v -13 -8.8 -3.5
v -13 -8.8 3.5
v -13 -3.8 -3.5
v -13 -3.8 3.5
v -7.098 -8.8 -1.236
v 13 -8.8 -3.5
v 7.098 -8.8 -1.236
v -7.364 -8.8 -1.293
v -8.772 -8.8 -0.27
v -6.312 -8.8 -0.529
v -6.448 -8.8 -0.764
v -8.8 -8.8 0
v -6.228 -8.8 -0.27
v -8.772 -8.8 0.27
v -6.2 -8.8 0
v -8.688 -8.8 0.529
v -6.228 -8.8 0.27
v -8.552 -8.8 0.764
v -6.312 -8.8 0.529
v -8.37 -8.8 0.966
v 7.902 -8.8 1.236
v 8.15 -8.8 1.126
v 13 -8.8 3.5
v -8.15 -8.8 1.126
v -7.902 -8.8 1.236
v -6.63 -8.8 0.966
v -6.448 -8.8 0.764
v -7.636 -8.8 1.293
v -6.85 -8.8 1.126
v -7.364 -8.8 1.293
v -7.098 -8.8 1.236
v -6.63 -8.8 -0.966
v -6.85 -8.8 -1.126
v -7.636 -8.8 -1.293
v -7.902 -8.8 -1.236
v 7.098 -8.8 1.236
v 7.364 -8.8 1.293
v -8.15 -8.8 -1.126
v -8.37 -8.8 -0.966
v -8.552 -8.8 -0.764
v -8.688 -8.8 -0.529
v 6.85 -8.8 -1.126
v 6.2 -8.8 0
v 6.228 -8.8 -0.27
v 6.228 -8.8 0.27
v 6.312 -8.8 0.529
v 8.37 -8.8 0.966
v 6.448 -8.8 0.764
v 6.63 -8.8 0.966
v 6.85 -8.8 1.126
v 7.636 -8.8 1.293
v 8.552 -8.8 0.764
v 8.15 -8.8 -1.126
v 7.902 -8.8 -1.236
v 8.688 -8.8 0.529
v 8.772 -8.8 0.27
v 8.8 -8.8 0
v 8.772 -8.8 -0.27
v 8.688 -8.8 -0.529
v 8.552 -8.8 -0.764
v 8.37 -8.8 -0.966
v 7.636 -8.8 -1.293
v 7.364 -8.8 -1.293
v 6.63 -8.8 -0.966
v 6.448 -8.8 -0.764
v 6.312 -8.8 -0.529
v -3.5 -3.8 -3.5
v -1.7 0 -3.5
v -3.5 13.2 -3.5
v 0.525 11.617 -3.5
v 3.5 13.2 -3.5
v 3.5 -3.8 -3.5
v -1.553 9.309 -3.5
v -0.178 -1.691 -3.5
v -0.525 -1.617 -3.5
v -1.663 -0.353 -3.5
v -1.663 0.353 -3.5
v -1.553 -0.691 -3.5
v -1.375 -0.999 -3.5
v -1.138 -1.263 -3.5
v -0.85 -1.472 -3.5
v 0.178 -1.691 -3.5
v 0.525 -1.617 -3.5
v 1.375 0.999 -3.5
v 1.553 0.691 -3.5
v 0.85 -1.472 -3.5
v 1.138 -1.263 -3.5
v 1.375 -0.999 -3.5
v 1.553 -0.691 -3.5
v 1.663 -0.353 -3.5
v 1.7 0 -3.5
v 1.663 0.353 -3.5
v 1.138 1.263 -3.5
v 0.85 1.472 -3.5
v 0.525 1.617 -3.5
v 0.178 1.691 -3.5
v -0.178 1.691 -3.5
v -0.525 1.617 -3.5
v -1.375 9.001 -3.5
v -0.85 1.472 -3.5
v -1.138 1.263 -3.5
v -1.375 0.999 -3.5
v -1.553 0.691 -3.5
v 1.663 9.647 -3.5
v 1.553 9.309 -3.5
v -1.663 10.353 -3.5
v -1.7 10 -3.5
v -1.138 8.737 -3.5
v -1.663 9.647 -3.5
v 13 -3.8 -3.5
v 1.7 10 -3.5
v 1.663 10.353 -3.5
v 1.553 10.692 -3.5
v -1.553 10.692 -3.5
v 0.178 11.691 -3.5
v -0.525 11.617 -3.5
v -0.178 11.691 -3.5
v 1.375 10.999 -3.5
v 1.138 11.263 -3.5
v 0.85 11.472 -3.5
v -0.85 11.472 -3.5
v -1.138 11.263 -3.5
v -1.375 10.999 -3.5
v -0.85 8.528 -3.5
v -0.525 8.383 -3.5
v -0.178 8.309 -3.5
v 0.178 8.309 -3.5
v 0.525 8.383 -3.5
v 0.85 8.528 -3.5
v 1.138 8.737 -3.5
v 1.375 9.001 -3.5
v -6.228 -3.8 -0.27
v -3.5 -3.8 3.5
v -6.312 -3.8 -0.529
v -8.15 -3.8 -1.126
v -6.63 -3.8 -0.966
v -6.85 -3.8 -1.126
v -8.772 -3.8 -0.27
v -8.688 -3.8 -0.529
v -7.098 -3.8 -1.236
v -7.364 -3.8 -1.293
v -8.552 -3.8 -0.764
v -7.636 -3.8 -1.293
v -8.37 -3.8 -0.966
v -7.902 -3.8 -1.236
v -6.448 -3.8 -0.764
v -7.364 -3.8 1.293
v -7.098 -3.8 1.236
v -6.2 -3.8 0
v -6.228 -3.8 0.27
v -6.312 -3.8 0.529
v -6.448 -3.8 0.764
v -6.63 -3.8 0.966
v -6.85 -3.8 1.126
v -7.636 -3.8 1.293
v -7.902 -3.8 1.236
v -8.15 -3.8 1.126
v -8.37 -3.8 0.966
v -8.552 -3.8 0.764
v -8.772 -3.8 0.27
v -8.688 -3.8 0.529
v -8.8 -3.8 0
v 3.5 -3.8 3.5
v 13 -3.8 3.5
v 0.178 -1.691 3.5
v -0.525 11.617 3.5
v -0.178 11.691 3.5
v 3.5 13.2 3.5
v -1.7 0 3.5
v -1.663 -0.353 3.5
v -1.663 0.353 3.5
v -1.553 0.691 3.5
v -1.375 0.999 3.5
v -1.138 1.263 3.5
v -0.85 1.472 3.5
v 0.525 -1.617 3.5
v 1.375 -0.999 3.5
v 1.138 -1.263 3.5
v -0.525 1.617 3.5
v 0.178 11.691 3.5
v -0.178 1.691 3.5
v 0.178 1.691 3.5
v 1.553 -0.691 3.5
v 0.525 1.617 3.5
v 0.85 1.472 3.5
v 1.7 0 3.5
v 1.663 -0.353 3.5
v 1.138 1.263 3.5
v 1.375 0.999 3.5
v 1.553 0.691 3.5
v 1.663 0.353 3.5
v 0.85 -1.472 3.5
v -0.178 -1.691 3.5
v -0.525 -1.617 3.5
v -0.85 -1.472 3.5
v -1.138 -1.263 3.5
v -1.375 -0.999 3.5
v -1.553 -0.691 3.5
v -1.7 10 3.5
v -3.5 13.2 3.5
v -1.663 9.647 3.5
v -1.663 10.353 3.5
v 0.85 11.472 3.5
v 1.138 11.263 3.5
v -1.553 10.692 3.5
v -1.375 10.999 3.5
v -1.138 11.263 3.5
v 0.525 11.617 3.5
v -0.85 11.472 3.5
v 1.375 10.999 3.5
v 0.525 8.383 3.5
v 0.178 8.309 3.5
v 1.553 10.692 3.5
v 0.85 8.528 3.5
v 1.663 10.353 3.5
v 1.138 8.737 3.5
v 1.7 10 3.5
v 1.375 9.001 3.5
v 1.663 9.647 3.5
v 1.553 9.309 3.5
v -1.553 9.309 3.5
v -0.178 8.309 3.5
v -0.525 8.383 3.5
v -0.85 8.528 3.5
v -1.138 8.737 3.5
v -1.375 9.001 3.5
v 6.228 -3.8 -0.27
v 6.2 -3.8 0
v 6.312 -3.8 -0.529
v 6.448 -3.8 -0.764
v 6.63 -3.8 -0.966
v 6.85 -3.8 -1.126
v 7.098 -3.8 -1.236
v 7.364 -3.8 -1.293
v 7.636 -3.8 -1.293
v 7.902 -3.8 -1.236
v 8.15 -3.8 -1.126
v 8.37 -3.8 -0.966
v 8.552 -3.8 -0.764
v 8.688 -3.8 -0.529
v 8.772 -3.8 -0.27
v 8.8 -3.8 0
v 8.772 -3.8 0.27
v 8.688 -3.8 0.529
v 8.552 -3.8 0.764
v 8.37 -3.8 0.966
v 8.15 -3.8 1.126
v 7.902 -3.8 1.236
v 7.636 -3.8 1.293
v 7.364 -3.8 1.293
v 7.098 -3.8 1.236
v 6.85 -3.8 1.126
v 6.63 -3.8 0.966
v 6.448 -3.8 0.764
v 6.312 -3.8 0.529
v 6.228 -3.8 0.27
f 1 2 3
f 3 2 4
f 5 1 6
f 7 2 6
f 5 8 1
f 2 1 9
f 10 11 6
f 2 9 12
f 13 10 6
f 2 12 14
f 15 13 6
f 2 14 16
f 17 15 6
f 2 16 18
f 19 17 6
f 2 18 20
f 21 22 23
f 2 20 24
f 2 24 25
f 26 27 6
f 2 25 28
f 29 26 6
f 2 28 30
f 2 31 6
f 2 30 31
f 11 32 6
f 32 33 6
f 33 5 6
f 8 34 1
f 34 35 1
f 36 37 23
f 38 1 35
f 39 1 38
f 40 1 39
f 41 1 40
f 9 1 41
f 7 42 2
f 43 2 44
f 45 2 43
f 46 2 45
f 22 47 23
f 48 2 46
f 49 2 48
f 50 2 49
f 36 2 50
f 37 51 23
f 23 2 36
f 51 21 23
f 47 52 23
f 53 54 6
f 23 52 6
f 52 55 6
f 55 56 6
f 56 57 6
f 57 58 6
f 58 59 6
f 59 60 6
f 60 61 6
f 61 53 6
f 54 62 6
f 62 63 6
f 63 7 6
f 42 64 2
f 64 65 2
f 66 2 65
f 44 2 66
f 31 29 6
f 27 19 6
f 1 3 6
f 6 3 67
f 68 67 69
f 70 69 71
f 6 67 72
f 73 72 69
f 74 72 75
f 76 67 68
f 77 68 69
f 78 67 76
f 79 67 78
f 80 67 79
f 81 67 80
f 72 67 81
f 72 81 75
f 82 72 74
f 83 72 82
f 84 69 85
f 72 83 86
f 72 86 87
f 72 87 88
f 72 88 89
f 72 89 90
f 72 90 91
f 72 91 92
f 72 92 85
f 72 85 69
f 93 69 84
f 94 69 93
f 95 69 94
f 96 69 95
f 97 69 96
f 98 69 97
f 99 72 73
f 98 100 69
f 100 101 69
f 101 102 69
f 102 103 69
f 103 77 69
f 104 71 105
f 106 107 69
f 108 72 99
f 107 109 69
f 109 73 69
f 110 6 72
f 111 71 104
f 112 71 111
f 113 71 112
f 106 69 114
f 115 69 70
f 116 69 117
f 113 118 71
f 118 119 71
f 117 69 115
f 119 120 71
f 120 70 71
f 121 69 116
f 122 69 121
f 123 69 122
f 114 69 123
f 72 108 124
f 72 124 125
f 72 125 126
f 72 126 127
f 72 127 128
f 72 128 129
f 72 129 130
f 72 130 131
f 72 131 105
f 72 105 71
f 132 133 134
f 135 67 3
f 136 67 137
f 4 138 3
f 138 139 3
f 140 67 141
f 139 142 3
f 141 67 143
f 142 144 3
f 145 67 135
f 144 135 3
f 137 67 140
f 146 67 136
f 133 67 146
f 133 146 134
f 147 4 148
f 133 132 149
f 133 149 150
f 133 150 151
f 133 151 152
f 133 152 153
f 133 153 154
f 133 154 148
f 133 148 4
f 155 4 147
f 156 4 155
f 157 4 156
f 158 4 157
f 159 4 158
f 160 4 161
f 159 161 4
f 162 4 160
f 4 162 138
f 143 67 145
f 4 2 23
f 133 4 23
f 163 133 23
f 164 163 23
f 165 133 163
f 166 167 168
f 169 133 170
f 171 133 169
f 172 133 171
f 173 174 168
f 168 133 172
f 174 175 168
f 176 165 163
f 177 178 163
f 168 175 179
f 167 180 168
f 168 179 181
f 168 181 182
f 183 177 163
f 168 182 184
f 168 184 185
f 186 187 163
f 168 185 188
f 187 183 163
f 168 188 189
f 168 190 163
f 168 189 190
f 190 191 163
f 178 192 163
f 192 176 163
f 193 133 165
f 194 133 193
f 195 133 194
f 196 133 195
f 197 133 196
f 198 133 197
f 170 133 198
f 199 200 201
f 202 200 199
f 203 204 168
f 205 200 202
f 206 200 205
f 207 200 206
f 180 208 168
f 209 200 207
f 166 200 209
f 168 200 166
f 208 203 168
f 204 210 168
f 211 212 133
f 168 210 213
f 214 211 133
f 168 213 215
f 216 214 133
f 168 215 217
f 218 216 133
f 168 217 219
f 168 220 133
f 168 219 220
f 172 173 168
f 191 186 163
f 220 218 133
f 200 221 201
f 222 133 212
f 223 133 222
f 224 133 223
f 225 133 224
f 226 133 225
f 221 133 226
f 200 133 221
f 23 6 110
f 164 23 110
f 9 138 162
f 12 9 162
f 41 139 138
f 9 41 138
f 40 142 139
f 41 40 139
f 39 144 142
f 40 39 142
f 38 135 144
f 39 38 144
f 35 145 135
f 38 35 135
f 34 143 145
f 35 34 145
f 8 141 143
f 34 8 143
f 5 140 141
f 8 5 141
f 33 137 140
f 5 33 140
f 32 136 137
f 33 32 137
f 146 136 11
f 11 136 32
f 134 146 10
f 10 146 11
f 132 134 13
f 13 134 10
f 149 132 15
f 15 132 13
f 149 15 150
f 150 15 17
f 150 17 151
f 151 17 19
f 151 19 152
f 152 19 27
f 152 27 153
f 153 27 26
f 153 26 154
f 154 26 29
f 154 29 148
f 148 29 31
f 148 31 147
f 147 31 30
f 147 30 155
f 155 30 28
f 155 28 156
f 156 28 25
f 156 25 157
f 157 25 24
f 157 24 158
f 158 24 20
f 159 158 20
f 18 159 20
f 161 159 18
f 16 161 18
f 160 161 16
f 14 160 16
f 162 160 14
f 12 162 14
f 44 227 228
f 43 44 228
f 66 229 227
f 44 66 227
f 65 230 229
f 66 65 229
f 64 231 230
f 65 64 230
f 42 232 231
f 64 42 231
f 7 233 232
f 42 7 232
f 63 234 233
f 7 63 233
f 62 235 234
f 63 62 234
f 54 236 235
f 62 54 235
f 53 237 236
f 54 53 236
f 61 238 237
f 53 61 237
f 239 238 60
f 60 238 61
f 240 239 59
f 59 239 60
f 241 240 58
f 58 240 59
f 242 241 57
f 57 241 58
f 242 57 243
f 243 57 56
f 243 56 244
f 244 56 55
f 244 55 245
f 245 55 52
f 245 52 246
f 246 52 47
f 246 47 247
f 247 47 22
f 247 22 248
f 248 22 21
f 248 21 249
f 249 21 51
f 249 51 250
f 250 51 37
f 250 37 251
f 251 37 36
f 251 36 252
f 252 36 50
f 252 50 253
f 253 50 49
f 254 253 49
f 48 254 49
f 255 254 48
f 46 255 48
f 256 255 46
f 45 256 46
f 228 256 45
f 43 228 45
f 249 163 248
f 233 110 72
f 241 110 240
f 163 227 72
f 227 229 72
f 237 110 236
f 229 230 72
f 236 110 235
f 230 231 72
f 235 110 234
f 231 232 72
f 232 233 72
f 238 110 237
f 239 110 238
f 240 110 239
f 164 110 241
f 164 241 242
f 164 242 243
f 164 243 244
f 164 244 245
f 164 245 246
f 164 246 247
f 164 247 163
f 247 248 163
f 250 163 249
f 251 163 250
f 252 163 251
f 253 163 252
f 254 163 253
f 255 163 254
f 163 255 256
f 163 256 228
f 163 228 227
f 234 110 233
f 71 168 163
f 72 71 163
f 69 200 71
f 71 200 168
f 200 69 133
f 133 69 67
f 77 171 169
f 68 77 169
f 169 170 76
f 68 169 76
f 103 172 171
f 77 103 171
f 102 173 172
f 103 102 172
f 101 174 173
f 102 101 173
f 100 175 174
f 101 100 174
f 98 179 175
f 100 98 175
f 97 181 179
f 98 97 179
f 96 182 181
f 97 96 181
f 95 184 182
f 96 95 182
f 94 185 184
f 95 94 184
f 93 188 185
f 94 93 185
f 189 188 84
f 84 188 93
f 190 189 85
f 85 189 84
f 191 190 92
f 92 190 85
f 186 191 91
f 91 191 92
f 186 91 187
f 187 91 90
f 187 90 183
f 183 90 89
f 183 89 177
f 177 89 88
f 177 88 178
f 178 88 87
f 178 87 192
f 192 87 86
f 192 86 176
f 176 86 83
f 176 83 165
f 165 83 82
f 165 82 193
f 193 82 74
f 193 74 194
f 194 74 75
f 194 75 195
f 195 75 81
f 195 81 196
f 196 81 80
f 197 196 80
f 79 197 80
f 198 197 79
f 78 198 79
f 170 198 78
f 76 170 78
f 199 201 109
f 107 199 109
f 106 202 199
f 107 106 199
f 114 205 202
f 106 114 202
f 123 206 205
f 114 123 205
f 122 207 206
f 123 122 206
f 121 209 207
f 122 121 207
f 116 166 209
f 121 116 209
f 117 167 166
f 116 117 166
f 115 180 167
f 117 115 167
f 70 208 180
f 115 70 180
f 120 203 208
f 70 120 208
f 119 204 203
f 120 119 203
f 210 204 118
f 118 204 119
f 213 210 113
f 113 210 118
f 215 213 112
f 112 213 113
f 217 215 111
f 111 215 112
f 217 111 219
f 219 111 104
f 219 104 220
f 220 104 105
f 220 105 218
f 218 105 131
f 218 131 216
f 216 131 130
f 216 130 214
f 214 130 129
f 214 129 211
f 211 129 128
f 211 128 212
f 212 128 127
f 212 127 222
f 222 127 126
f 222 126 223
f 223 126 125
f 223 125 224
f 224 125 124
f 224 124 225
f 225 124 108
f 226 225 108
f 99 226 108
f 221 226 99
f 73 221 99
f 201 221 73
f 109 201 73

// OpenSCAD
difference()
{
translate([0,11-8.8,0])
difference()
{
cube([26,22,7],center=true);
translate([13.5,4,0])
cube([20,20,8],center=true);
translate([-13.5,4,0])
cube([20,20,8],center=true);

}
translate([0,10,0])
cylinder(r=1.7, h=40, center=true, $fn=30);
cylinder(r=1.7, h=40, center=true, $fn=30);
translate([7.5,0,0])
rotate([90,0,0])
cylinder(r=1.3, h=40, center=true, $fn=30);
translate([-7.5,0,0])
rotate([90,0,0])
cylinder(r=1.3, h=40, center=true, $fn=30);
}
